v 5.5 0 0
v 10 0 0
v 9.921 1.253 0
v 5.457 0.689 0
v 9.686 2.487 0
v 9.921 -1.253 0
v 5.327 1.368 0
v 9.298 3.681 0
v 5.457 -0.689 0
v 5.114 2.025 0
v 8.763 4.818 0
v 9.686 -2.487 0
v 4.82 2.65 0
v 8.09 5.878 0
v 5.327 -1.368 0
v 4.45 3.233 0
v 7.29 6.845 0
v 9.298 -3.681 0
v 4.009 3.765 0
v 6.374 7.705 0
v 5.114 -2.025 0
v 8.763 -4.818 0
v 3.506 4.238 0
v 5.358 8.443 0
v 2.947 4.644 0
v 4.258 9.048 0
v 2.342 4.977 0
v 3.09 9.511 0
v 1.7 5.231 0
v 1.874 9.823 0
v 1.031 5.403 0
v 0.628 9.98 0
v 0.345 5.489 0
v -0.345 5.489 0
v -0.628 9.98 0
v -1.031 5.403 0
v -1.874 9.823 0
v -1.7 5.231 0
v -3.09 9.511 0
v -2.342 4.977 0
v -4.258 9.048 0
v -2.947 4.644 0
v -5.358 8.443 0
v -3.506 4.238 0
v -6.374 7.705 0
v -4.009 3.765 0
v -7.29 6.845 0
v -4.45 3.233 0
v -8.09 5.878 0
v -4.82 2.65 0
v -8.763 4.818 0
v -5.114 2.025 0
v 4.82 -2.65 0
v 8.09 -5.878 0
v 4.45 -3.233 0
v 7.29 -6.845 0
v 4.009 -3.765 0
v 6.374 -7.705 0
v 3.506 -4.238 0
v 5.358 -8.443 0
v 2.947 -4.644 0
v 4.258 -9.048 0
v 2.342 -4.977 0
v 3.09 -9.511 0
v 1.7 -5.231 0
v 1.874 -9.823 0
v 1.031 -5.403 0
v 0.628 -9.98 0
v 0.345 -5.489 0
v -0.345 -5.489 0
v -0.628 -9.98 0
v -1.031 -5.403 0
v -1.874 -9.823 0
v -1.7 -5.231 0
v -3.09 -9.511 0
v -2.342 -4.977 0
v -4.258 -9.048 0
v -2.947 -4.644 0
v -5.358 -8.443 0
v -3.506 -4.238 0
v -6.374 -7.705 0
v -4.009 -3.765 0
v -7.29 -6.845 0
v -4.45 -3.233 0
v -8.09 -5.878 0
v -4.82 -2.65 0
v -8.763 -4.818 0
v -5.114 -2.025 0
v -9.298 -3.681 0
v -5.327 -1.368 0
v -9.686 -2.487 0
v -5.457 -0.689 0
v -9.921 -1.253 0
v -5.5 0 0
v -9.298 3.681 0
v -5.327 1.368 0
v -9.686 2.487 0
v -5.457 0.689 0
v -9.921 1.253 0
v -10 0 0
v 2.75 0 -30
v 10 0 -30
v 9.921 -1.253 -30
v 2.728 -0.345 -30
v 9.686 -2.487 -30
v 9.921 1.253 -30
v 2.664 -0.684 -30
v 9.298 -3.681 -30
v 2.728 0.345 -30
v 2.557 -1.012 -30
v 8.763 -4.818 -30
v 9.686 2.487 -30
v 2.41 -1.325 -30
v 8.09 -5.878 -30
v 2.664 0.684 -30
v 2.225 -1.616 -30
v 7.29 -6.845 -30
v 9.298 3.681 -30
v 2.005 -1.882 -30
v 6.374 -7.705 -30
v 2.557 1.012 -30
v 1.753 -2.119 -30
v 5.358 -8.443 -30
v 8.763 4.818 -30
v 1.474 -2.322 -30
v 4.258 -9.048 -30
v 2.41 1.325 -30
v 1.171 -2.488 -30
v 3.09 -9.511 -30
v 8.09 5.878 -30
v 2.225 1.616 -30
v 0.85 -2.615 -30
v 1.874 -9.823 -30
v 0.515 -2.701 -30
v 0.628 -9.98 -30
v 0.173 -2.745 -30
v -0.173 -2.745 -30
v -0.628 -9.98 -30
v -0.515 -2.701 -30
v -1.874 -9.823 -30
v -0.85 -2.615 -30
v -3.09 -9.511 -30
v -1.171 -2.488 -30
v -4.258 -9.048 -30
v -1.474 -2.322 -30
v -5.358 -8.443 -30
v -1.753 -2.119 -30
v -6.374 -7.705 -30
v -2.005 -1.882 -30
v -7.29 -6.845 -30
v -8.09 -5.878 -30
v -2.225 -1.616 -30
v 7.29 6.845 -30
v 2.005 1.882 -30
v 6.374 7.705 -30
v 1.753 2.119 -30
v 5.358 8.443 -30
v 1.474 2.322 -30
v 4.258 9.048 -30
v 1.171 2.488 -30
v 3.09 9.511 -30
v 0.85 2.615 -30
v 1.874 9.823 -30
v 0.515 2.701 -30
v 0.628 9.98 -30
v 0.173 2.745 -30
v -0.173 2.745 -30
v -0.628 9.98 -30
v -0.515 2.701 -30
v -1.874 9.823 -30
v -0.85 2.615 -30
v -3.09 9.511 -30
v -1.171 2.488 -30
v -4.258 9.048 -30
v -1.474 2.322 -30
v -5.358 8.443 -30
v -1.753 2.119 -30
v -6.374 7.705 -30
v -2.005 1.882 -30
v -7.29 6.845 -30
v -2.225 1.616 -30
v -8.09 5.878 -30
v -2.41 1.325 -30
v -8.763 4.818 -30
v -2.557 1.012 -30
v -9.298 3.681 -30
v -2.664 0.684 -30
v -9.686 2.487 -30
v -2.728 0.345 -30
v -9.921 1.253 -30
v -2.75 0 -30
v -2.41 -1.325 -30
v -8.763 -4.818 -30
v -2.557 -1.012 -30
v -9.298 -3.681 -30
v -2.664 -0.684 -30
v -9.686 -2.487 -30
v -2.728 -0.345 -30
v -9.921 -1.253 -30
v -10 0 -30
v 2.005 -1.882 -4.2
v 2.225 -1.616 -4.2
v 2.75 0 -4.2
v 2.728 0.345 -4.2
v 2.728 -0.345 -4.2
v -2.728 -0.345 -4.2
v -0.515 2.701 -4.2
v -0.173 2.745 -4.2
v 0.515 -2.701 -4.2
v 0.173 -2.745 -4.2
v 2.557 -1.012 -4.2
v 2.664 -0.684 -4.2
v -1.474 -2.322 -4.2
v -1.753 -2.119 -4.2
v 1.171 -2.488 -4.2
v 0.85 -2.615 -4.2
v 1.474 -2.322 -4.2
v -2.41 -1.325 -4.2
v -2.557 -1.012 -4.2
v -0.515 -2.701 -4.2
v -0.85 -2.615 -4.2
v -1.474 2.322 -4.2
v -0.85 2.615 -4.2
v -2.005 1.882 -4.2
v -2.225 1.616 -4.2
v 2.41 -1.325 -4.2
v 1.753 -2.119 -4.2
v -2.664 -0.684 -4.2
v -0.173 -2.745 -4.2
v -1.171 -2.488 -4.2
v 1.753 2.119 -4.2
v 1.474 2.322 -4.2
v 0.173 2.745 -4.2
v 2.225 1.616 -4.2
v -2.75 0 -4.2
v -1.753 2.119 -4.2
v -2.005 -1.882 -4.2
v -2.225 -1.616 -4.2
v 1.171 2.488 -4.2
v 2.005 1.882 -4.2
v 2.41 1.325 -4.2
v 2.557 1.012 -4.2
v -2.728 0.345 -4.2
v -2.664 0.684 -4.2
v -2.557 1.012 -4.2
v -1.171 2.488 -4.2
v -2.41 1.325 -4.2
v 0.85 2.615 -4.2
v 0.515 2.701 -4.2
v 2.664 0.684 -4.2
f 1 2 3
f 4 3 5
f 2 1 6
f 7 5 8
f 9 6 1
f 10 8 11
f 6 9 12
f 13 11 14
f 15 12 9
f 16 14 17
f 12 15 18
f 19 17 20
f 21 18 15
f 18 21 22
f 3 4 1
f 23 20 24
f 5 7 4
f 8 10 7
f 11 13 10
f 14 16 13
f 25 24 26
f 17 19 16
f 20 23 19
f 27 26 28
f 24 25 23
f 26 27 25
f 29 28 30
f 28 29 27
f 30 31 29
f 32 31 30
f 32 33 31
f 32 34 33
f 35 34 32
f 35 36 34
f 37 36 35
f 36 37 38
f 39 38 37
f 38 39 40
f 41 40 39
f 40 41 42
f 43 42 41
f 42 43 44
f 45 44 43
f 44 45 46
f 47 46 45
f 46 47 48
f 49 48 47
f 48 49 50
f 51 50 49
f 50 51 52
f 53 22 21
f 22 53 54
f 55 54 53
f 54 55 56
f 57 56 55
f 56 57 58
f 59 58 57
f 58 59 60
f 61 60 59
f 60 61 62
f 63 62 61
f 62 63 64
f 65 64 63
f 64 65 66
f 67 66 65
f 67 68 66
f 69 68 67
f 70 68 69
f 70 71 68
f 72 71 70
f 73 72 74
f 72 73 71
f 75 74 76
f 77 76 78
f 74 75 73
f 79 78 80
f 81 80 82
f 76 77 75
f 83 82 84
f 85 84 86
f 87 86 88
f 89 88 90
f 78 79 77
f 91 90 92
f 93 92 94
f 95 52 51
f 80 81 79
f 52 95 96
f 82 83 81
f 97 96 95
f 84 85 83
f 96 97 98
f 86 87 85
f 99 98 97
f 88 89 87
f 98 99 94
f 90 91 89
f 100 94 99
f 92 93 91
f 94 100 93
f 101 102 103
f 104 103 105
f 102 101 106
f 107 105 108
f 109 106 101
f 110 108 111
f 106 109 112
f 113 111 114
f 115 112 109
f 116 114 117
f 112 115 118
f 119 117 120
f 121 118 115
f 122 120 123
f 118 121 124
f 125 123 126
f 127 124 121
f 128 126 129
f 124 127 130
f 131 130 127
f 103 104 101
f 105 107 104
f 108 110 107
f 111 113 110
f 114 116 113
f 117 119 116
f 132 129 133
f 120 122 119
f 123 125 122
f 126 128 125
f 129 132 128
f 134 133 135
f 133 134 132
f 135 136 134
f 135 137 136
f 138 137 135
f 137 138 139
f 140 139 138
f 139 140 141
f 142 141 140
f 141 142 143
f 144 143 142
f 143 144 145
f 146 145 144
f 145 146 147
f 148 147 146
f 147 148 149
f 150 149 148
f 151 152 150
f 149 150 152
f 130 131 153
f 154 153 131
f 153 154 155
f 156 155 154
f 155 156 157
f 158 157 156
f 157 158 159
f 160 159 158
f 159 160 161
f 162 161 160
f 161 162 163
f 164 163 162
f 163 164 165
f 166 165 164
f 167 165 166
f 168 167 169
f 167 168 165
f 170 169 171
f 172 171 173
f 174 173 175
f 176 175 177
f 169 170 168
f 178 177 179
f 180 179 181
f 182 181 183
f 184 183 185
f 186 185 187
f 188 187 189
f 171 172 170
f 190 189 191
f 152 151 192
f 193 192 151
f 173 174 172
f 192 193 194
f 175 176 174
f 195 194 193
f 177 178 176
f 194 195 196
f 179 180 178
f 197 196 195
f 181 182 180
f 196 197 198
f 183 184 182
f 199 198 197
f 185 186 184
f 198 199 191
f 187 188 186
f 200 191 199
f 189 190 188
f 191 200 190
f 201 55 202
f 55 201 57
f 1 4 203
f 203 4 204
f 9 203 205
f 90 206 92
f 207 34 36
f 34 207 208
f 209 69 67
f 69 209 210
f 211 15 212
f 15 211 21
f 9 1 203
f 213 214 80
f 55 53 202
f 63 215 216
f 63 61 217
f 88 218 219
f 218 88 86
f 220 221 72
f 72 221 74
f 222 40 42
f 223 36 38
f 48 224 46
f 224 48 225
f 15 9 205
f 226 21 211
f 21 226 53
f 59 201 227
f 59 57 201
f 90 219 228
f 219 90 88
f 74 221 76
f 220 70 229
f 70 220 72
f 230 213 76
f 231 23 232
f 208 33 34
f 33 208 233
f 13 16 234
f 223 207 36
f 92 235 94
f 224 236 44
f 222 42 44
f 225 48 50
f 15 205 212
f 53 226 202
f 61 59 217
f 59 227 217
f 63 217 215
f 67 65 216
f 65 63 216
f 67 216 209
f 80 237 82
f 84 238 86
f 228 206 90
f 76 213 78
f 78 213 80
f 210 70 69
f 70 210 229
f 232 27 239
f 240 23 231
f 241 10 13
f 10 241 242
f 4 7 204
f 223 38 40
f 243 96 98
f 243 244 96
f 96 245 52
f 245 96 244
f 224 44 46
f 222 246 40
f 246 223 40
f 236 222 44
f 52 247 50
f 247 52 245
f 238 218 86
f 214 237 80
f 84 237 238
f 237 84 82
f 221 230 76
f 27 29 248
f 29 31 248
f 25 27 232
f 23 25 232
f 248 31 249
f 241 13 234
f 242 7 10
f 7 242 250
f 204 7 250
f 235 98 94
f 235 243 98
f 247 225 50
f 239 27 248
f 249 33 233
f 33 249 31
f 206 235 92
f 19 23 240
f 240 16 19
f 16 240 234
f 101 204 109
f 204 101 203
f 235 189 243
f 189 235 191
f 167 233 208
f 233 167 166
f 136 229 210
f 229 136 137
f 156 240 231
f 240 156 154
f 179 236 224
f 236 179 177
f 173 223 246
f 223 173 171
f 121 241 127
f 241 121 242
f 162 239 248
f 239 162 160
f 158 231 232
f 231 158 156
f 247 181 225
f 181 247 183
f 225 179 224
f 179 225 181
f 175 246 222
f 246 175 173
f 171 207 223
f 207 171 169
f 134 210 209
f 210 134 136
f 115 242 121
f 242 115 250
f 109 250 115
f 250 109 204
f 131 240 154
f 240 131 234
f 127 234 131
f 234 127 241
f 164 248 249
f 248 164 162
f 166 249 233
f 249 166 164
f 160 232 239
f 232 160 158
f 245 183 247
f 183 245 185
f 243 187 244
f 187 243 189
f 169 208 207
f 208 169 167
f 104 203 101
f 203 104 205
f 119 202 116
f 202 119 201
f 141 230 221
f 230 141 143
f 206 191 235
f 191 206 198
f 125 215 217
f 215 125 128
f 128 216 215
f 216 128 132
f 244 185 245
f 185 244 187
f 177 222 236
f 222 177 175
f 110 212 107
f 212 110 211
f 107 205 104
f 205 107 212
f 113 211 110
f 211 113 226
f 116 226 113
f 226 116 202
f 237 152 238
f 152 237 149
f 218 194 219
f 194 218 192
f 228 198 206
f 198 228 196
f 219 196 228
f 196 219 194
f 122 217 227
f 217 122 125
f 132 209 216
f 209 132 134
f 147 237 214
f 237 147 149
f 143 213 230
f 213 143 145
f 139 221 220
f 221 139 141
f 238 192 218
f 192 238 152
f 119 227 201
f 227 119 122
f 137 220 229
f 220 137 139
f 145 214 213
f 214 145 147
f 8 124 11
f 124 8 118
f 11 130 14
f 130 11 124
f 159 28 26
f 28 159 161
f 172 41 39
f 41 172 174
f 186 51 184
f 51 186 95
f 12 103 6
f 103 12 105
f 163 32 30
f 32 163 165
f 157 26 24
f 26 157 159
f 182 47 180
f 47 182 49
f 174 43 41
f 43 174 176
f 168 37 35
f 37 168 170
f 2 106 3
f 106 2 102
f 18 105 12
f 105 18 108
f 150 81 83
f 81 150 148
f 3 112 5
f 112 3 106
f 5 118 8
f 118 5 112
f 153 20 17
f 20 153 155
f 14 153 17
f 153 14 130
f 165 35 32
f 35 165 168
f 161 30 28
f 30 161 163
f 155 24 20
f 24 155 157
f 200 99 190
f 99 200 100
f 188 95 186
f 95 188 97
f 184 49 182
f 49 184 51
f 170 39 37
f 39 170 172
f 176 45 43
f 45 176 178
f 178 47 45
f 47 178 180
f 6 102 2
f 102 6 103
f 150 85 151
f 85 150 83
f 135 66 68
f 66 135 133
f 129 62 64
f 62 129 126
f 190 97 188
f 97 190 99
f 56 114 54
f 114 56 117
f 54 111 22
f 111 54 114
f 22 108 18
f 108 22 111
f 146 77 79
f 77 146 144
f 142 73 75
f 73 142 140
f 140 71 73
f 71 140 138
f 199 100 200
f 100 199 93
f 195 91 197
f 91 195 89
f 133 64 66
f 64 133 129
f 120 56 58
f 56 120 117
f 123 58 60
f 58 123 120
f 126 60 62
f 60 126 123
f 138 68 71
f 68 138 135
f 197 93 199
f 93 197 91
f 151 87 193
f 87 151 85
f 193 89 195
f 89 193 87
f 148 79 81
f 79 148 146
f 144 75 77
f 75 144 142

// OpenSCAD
$fn = 50;


difference() {
	union() {
		translate(v = [0, 0, -30.0000000000]) {
			cylinder(h = 30, r = 10.0000000000);
		}
		cylinder(h = 0, r = 16.0000000000);
	}
	union() {
		translate(v = [0, 0, 0]) {
			rotate(a = [0, 0, 0]) {
				difference() {
					union() {
						#translate(v = [0, 0, -30.0000000000]) {
							cylinder(h = 30, r = 2.2500000000);
						}
						#translate(v = [0, 0, -4.2000000000]) {
							cylinder(h = 4.2000000000, r = 10.0000000000, r1 = 2.7500000000, r2 = 5.5000000000);
						}
						#translate(v = [0, 0, -30.0000000000]) {
							cylinder(h = 30, r = 2.7500000000);
						}
						#translate(v = [0, 0, -30.0000000000]) {
							cylinder(h = 30, r = 2.2500000000);
						}
					}
					union();
				}
			}
		}
	}
}
